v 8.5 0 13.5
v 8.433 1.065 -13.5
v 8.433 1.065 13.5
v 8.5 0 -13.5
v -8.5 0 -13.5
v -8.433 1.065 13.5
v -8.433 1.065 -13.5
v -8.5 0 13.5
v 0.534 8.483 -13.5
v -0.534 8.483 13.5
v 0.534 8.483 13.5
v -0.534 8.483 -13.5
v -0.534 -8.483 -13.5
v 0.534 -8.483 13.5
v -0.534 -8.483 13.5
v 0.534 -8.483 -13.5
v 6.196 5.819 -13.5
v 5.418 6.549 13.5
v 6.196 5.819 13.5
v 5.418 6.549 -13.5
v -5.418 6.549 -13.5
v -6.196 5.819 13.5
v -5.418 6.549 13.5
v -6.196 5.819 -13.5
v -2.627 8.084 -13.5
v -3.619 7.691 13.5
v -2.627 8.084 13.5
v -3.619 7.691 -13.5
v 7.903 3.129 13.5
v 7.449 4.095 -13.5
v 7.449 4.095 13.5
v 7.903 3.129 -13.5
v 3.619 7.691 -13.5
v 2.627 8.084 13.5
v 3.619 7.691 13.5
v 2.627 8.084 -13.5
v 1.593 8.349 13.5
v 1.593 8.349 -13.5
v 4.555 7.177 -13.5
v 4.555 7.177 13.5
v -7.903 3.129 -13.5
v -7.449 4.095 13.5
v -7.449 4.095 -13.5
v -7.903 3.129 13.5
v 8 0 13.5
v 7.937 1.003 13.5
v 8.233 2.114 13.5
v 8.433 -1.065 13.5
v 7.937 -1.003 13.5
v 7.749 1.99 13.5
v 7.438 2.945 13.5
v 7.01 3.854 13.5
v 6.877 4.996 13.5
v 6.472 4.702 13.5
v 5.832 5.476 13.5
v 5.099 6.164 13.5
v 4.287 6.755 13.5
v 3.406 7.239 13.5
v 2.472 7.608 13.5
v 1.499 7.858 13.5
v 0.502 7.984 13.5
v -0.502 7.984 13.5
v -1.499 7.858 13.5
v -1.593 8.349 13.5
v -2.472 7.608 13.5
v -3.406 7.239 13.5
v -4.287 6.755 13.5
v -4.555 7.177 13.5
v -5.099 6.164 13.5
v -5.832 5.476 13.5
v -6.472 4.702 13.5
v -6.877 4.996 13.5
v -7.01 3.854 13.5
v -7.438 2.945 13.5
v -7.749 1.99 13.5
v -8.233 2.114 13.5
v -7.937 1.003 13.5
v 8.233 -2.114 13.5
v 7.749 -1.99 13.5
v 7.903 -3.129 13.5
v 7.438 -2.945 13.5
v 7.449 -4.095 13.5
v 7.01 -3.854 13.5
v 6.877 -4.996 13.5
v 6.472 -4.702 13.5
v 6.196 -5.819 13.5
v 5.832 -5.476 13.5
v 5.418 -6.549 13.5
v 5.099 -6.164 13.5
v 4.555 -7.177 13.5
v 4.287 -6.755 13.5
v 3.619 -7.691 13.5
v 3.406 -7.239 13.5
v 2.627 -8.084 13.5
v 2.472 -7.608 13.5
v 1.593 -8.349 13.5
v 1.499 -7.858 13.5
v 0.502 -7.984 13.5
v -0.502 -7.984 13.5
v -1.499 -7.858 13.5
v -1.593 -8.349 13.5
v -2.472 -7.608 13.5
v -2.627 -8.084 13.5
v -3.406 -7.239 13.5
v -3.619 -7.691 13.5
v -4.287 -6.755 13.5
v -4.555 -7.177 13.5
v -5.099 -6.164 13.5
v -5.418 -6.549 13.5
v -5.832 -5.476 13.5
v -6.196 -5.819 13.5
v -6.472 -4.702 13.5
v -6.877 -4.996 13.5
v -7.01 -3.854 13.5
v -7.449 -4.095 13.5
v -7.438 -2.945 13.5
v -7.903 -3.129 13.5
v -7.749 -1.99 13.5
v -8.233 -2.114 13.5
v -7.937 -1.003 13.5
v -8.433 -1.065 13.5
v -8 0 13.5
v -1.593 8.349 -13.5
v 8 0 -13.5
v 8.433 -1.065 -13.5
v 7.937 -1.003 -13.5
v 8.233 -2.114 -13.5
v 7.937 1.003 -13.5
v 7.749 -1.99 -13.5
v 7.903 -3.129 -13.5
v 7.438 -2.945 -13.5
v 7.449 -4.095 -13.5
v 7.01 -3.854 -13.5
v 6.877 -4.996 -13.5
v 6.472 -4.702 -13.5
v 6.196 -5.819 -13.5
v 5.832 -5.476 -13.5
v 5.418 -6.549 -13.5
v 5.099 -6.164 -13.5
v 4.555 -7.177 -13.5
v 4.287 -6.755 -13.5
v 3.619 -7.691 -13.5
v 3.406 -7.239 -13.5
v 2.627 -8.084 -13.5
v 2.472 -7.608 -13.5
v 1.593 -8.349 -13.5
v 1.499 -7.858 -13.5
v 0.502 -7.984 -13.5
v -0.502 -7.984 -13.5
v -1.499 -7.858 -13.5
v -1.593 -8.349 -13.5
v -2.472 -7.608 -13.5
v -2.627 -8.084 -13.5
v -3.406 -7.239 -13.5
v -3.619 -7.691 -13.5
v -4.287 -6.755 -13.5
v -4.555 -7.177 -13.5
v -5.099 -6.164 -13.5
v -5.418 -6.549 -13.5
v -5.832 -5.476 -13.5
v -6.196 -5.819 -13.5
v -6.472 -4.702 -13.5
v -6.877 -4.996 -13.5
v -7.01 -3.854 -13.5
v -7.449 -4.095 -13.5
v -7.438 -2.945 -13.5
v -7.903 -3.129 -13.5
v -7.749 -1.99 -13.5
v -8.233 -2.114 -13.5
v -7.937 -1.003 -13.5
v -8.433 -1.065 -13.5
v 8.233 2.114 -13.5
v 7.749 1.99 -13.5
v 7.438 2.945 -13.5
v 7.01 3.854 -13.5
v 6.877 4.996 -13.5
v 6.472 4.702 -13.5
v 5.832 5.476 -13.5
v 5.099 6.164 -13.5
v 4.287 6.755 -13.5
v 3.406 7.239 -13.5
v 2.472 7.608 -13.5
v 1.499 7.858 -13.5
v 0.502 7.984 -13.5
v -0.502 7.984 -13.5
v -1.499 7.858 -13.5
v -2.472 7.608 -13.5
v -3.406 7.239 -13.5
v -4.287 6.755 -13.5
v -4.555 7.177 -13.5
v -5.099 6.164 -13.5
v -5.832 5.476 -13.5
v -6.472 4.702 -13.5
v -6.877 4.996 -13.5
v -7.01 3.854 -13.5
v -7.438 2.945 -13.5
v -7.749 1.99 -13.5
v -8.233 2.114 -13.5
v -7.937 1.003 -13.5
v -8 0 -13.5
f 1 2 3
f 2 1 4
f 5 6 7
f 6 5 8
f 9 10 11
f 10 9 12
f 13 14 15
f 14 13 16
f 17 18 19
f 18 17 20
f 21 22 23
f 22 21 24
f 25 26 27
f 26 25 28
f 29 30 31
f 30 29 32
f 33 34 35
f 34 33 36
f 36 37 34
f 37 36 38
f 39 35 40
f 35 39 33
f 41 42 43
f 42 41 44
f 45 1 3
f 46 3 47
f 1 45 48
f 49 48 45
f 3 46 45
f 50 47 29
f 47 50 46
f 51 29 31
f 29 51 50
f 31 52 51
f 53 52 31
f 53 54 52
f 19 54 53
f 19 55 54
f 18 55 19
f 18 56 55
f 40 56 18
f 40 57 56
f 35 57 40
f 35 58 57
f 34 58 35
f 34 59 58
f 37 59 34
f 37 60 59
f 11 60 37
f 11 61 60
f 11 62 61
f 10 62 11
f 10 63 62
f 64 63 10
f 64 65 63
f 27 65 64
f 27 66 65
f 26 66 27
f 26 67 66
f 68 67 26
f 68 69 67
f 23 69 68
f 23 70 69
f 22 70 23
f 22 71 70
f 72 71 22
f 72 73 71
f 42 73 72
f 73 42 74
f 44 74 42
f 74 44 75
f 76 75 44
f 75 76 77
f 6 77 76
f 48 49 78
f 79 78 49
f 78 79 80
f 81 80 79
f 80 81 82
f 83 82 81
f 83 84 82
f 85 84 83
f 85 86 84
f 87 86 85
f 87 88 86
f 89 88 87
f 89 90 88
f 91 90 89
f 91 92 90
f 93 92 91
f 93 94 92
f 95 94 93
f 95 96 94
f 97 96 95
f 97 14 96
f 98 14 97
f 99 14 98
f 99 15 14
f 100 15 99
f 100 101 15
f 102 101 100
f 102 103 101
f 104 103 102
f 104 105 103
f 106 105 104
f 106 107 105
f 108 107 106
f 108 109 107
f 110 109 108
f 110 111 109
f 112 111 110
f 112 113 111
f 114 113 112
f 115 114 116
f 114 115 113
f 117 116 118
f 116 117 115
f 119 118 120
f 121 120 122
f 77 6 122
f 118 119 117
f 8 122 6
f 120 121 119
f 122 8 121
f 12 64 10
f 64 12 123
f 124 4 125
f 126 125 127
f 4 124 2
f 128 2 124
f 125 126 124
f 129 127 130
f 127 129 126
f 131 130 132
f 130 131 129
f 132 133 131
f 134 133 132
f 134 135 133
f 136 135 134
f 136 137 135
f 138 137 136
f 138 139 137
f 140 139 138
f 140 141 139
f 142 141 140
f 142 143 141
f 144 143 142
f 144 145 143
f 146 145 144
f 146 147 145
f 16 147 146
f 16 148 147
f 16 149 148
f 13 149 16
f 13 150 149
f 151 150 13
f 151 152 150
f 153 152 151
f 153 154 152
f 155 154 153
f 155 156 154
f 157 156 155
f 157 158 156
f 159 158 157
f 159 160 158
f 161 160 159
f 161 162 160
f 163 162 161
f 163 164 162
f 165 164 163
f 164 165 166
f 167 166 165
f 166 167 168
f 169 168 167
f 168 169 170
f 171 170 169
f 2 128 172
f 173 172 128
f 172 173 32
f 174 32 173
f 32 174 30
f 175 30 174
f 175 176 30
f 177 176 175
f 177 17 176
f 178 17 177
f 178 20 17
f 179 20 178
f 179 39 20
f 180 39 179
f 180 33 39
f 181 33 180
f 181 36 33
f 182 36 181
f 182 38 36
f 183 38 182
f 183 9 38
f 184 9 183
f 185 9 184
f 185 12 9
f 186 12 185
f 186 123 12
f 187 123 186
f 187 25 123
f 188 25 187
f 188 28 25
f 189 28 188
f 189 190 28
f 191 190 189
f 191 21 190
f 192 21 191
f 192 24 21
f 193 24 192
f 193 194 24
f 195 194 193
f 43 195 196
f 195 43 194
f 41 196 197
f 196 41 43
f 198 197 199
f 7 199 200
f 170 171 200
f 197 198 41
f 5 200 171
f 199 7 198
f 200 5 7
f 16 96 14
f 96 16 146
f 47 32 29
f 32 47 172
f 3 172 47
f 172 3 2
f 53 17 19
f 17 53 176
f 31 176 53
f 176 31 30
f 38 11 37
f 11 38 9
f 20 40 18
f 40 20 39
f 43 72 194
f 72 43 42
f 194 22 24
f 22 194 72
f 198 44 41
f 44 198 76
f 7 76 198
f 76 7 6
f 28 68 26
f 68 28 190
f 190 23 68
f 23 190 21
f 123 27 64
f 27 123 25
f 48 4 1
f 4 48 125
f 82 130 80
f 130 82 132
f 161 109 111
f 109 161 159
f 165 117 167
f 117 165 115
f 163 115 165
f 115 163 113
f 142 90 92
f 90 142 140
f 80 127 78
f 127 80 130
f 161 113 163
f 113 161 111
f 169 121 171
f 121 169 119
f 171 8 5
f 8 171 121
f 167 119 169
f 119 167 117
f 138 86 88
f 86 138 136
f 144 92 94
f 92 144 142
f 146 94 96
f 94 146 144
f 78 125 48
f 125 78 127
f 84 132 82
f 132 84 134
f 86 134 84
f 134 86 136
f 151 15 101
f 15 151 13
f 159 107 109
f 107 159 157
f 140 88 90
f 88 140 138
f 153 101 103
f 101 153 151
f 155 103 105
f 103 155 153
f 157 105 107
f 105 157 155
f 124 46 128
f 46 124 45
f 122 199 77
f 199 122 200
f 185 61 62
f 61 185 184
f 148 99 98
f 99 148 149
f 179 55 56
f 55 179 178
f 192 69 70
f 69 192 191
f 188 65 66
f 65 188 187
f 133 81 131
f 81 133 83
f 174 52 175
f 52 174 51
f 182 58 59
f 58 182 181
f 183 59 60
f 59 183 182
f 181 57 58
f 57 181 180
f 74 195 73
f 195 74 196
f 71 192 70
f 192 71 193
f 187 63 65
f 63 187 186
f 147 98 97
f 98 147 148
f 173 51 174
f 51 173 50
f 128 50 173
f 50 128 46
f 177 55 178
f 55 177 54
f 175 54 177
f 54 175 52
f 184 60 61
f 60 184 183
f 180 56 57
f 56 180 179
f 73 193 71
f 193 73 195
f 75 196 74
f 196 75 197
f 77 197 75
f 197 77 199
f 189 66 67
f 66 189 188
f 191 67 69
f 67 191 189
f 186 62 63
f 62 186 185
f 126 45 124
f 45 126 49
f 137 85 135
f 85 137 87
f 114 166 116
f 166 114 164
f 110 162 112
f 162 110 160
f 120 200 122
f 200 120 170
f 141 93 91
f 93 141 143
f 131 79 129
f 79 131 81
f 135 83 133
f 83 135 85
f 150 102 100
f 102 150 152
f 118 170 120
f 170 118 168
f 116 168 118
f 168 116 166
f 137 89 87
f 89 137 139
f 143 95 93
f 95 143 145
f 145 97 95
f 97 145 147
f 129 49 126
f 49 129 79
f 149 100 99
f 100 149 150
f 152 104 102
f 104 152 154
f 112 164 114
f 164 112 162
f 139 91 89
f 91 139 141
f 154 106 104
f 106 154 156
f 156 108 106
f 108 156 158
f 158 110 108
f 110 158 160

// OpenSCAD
$fn = 50;


difference() {
	union() {
		translate(v = [0, 0, -13.5000000000]) {
			cylinder(h = 27, r = 8.5000000000);
		}
	}
	union() {
		translate(v = [0, 0, -100.0000000000]) {
			cylinder(h = 200, r = 8);
		}
	}
}
